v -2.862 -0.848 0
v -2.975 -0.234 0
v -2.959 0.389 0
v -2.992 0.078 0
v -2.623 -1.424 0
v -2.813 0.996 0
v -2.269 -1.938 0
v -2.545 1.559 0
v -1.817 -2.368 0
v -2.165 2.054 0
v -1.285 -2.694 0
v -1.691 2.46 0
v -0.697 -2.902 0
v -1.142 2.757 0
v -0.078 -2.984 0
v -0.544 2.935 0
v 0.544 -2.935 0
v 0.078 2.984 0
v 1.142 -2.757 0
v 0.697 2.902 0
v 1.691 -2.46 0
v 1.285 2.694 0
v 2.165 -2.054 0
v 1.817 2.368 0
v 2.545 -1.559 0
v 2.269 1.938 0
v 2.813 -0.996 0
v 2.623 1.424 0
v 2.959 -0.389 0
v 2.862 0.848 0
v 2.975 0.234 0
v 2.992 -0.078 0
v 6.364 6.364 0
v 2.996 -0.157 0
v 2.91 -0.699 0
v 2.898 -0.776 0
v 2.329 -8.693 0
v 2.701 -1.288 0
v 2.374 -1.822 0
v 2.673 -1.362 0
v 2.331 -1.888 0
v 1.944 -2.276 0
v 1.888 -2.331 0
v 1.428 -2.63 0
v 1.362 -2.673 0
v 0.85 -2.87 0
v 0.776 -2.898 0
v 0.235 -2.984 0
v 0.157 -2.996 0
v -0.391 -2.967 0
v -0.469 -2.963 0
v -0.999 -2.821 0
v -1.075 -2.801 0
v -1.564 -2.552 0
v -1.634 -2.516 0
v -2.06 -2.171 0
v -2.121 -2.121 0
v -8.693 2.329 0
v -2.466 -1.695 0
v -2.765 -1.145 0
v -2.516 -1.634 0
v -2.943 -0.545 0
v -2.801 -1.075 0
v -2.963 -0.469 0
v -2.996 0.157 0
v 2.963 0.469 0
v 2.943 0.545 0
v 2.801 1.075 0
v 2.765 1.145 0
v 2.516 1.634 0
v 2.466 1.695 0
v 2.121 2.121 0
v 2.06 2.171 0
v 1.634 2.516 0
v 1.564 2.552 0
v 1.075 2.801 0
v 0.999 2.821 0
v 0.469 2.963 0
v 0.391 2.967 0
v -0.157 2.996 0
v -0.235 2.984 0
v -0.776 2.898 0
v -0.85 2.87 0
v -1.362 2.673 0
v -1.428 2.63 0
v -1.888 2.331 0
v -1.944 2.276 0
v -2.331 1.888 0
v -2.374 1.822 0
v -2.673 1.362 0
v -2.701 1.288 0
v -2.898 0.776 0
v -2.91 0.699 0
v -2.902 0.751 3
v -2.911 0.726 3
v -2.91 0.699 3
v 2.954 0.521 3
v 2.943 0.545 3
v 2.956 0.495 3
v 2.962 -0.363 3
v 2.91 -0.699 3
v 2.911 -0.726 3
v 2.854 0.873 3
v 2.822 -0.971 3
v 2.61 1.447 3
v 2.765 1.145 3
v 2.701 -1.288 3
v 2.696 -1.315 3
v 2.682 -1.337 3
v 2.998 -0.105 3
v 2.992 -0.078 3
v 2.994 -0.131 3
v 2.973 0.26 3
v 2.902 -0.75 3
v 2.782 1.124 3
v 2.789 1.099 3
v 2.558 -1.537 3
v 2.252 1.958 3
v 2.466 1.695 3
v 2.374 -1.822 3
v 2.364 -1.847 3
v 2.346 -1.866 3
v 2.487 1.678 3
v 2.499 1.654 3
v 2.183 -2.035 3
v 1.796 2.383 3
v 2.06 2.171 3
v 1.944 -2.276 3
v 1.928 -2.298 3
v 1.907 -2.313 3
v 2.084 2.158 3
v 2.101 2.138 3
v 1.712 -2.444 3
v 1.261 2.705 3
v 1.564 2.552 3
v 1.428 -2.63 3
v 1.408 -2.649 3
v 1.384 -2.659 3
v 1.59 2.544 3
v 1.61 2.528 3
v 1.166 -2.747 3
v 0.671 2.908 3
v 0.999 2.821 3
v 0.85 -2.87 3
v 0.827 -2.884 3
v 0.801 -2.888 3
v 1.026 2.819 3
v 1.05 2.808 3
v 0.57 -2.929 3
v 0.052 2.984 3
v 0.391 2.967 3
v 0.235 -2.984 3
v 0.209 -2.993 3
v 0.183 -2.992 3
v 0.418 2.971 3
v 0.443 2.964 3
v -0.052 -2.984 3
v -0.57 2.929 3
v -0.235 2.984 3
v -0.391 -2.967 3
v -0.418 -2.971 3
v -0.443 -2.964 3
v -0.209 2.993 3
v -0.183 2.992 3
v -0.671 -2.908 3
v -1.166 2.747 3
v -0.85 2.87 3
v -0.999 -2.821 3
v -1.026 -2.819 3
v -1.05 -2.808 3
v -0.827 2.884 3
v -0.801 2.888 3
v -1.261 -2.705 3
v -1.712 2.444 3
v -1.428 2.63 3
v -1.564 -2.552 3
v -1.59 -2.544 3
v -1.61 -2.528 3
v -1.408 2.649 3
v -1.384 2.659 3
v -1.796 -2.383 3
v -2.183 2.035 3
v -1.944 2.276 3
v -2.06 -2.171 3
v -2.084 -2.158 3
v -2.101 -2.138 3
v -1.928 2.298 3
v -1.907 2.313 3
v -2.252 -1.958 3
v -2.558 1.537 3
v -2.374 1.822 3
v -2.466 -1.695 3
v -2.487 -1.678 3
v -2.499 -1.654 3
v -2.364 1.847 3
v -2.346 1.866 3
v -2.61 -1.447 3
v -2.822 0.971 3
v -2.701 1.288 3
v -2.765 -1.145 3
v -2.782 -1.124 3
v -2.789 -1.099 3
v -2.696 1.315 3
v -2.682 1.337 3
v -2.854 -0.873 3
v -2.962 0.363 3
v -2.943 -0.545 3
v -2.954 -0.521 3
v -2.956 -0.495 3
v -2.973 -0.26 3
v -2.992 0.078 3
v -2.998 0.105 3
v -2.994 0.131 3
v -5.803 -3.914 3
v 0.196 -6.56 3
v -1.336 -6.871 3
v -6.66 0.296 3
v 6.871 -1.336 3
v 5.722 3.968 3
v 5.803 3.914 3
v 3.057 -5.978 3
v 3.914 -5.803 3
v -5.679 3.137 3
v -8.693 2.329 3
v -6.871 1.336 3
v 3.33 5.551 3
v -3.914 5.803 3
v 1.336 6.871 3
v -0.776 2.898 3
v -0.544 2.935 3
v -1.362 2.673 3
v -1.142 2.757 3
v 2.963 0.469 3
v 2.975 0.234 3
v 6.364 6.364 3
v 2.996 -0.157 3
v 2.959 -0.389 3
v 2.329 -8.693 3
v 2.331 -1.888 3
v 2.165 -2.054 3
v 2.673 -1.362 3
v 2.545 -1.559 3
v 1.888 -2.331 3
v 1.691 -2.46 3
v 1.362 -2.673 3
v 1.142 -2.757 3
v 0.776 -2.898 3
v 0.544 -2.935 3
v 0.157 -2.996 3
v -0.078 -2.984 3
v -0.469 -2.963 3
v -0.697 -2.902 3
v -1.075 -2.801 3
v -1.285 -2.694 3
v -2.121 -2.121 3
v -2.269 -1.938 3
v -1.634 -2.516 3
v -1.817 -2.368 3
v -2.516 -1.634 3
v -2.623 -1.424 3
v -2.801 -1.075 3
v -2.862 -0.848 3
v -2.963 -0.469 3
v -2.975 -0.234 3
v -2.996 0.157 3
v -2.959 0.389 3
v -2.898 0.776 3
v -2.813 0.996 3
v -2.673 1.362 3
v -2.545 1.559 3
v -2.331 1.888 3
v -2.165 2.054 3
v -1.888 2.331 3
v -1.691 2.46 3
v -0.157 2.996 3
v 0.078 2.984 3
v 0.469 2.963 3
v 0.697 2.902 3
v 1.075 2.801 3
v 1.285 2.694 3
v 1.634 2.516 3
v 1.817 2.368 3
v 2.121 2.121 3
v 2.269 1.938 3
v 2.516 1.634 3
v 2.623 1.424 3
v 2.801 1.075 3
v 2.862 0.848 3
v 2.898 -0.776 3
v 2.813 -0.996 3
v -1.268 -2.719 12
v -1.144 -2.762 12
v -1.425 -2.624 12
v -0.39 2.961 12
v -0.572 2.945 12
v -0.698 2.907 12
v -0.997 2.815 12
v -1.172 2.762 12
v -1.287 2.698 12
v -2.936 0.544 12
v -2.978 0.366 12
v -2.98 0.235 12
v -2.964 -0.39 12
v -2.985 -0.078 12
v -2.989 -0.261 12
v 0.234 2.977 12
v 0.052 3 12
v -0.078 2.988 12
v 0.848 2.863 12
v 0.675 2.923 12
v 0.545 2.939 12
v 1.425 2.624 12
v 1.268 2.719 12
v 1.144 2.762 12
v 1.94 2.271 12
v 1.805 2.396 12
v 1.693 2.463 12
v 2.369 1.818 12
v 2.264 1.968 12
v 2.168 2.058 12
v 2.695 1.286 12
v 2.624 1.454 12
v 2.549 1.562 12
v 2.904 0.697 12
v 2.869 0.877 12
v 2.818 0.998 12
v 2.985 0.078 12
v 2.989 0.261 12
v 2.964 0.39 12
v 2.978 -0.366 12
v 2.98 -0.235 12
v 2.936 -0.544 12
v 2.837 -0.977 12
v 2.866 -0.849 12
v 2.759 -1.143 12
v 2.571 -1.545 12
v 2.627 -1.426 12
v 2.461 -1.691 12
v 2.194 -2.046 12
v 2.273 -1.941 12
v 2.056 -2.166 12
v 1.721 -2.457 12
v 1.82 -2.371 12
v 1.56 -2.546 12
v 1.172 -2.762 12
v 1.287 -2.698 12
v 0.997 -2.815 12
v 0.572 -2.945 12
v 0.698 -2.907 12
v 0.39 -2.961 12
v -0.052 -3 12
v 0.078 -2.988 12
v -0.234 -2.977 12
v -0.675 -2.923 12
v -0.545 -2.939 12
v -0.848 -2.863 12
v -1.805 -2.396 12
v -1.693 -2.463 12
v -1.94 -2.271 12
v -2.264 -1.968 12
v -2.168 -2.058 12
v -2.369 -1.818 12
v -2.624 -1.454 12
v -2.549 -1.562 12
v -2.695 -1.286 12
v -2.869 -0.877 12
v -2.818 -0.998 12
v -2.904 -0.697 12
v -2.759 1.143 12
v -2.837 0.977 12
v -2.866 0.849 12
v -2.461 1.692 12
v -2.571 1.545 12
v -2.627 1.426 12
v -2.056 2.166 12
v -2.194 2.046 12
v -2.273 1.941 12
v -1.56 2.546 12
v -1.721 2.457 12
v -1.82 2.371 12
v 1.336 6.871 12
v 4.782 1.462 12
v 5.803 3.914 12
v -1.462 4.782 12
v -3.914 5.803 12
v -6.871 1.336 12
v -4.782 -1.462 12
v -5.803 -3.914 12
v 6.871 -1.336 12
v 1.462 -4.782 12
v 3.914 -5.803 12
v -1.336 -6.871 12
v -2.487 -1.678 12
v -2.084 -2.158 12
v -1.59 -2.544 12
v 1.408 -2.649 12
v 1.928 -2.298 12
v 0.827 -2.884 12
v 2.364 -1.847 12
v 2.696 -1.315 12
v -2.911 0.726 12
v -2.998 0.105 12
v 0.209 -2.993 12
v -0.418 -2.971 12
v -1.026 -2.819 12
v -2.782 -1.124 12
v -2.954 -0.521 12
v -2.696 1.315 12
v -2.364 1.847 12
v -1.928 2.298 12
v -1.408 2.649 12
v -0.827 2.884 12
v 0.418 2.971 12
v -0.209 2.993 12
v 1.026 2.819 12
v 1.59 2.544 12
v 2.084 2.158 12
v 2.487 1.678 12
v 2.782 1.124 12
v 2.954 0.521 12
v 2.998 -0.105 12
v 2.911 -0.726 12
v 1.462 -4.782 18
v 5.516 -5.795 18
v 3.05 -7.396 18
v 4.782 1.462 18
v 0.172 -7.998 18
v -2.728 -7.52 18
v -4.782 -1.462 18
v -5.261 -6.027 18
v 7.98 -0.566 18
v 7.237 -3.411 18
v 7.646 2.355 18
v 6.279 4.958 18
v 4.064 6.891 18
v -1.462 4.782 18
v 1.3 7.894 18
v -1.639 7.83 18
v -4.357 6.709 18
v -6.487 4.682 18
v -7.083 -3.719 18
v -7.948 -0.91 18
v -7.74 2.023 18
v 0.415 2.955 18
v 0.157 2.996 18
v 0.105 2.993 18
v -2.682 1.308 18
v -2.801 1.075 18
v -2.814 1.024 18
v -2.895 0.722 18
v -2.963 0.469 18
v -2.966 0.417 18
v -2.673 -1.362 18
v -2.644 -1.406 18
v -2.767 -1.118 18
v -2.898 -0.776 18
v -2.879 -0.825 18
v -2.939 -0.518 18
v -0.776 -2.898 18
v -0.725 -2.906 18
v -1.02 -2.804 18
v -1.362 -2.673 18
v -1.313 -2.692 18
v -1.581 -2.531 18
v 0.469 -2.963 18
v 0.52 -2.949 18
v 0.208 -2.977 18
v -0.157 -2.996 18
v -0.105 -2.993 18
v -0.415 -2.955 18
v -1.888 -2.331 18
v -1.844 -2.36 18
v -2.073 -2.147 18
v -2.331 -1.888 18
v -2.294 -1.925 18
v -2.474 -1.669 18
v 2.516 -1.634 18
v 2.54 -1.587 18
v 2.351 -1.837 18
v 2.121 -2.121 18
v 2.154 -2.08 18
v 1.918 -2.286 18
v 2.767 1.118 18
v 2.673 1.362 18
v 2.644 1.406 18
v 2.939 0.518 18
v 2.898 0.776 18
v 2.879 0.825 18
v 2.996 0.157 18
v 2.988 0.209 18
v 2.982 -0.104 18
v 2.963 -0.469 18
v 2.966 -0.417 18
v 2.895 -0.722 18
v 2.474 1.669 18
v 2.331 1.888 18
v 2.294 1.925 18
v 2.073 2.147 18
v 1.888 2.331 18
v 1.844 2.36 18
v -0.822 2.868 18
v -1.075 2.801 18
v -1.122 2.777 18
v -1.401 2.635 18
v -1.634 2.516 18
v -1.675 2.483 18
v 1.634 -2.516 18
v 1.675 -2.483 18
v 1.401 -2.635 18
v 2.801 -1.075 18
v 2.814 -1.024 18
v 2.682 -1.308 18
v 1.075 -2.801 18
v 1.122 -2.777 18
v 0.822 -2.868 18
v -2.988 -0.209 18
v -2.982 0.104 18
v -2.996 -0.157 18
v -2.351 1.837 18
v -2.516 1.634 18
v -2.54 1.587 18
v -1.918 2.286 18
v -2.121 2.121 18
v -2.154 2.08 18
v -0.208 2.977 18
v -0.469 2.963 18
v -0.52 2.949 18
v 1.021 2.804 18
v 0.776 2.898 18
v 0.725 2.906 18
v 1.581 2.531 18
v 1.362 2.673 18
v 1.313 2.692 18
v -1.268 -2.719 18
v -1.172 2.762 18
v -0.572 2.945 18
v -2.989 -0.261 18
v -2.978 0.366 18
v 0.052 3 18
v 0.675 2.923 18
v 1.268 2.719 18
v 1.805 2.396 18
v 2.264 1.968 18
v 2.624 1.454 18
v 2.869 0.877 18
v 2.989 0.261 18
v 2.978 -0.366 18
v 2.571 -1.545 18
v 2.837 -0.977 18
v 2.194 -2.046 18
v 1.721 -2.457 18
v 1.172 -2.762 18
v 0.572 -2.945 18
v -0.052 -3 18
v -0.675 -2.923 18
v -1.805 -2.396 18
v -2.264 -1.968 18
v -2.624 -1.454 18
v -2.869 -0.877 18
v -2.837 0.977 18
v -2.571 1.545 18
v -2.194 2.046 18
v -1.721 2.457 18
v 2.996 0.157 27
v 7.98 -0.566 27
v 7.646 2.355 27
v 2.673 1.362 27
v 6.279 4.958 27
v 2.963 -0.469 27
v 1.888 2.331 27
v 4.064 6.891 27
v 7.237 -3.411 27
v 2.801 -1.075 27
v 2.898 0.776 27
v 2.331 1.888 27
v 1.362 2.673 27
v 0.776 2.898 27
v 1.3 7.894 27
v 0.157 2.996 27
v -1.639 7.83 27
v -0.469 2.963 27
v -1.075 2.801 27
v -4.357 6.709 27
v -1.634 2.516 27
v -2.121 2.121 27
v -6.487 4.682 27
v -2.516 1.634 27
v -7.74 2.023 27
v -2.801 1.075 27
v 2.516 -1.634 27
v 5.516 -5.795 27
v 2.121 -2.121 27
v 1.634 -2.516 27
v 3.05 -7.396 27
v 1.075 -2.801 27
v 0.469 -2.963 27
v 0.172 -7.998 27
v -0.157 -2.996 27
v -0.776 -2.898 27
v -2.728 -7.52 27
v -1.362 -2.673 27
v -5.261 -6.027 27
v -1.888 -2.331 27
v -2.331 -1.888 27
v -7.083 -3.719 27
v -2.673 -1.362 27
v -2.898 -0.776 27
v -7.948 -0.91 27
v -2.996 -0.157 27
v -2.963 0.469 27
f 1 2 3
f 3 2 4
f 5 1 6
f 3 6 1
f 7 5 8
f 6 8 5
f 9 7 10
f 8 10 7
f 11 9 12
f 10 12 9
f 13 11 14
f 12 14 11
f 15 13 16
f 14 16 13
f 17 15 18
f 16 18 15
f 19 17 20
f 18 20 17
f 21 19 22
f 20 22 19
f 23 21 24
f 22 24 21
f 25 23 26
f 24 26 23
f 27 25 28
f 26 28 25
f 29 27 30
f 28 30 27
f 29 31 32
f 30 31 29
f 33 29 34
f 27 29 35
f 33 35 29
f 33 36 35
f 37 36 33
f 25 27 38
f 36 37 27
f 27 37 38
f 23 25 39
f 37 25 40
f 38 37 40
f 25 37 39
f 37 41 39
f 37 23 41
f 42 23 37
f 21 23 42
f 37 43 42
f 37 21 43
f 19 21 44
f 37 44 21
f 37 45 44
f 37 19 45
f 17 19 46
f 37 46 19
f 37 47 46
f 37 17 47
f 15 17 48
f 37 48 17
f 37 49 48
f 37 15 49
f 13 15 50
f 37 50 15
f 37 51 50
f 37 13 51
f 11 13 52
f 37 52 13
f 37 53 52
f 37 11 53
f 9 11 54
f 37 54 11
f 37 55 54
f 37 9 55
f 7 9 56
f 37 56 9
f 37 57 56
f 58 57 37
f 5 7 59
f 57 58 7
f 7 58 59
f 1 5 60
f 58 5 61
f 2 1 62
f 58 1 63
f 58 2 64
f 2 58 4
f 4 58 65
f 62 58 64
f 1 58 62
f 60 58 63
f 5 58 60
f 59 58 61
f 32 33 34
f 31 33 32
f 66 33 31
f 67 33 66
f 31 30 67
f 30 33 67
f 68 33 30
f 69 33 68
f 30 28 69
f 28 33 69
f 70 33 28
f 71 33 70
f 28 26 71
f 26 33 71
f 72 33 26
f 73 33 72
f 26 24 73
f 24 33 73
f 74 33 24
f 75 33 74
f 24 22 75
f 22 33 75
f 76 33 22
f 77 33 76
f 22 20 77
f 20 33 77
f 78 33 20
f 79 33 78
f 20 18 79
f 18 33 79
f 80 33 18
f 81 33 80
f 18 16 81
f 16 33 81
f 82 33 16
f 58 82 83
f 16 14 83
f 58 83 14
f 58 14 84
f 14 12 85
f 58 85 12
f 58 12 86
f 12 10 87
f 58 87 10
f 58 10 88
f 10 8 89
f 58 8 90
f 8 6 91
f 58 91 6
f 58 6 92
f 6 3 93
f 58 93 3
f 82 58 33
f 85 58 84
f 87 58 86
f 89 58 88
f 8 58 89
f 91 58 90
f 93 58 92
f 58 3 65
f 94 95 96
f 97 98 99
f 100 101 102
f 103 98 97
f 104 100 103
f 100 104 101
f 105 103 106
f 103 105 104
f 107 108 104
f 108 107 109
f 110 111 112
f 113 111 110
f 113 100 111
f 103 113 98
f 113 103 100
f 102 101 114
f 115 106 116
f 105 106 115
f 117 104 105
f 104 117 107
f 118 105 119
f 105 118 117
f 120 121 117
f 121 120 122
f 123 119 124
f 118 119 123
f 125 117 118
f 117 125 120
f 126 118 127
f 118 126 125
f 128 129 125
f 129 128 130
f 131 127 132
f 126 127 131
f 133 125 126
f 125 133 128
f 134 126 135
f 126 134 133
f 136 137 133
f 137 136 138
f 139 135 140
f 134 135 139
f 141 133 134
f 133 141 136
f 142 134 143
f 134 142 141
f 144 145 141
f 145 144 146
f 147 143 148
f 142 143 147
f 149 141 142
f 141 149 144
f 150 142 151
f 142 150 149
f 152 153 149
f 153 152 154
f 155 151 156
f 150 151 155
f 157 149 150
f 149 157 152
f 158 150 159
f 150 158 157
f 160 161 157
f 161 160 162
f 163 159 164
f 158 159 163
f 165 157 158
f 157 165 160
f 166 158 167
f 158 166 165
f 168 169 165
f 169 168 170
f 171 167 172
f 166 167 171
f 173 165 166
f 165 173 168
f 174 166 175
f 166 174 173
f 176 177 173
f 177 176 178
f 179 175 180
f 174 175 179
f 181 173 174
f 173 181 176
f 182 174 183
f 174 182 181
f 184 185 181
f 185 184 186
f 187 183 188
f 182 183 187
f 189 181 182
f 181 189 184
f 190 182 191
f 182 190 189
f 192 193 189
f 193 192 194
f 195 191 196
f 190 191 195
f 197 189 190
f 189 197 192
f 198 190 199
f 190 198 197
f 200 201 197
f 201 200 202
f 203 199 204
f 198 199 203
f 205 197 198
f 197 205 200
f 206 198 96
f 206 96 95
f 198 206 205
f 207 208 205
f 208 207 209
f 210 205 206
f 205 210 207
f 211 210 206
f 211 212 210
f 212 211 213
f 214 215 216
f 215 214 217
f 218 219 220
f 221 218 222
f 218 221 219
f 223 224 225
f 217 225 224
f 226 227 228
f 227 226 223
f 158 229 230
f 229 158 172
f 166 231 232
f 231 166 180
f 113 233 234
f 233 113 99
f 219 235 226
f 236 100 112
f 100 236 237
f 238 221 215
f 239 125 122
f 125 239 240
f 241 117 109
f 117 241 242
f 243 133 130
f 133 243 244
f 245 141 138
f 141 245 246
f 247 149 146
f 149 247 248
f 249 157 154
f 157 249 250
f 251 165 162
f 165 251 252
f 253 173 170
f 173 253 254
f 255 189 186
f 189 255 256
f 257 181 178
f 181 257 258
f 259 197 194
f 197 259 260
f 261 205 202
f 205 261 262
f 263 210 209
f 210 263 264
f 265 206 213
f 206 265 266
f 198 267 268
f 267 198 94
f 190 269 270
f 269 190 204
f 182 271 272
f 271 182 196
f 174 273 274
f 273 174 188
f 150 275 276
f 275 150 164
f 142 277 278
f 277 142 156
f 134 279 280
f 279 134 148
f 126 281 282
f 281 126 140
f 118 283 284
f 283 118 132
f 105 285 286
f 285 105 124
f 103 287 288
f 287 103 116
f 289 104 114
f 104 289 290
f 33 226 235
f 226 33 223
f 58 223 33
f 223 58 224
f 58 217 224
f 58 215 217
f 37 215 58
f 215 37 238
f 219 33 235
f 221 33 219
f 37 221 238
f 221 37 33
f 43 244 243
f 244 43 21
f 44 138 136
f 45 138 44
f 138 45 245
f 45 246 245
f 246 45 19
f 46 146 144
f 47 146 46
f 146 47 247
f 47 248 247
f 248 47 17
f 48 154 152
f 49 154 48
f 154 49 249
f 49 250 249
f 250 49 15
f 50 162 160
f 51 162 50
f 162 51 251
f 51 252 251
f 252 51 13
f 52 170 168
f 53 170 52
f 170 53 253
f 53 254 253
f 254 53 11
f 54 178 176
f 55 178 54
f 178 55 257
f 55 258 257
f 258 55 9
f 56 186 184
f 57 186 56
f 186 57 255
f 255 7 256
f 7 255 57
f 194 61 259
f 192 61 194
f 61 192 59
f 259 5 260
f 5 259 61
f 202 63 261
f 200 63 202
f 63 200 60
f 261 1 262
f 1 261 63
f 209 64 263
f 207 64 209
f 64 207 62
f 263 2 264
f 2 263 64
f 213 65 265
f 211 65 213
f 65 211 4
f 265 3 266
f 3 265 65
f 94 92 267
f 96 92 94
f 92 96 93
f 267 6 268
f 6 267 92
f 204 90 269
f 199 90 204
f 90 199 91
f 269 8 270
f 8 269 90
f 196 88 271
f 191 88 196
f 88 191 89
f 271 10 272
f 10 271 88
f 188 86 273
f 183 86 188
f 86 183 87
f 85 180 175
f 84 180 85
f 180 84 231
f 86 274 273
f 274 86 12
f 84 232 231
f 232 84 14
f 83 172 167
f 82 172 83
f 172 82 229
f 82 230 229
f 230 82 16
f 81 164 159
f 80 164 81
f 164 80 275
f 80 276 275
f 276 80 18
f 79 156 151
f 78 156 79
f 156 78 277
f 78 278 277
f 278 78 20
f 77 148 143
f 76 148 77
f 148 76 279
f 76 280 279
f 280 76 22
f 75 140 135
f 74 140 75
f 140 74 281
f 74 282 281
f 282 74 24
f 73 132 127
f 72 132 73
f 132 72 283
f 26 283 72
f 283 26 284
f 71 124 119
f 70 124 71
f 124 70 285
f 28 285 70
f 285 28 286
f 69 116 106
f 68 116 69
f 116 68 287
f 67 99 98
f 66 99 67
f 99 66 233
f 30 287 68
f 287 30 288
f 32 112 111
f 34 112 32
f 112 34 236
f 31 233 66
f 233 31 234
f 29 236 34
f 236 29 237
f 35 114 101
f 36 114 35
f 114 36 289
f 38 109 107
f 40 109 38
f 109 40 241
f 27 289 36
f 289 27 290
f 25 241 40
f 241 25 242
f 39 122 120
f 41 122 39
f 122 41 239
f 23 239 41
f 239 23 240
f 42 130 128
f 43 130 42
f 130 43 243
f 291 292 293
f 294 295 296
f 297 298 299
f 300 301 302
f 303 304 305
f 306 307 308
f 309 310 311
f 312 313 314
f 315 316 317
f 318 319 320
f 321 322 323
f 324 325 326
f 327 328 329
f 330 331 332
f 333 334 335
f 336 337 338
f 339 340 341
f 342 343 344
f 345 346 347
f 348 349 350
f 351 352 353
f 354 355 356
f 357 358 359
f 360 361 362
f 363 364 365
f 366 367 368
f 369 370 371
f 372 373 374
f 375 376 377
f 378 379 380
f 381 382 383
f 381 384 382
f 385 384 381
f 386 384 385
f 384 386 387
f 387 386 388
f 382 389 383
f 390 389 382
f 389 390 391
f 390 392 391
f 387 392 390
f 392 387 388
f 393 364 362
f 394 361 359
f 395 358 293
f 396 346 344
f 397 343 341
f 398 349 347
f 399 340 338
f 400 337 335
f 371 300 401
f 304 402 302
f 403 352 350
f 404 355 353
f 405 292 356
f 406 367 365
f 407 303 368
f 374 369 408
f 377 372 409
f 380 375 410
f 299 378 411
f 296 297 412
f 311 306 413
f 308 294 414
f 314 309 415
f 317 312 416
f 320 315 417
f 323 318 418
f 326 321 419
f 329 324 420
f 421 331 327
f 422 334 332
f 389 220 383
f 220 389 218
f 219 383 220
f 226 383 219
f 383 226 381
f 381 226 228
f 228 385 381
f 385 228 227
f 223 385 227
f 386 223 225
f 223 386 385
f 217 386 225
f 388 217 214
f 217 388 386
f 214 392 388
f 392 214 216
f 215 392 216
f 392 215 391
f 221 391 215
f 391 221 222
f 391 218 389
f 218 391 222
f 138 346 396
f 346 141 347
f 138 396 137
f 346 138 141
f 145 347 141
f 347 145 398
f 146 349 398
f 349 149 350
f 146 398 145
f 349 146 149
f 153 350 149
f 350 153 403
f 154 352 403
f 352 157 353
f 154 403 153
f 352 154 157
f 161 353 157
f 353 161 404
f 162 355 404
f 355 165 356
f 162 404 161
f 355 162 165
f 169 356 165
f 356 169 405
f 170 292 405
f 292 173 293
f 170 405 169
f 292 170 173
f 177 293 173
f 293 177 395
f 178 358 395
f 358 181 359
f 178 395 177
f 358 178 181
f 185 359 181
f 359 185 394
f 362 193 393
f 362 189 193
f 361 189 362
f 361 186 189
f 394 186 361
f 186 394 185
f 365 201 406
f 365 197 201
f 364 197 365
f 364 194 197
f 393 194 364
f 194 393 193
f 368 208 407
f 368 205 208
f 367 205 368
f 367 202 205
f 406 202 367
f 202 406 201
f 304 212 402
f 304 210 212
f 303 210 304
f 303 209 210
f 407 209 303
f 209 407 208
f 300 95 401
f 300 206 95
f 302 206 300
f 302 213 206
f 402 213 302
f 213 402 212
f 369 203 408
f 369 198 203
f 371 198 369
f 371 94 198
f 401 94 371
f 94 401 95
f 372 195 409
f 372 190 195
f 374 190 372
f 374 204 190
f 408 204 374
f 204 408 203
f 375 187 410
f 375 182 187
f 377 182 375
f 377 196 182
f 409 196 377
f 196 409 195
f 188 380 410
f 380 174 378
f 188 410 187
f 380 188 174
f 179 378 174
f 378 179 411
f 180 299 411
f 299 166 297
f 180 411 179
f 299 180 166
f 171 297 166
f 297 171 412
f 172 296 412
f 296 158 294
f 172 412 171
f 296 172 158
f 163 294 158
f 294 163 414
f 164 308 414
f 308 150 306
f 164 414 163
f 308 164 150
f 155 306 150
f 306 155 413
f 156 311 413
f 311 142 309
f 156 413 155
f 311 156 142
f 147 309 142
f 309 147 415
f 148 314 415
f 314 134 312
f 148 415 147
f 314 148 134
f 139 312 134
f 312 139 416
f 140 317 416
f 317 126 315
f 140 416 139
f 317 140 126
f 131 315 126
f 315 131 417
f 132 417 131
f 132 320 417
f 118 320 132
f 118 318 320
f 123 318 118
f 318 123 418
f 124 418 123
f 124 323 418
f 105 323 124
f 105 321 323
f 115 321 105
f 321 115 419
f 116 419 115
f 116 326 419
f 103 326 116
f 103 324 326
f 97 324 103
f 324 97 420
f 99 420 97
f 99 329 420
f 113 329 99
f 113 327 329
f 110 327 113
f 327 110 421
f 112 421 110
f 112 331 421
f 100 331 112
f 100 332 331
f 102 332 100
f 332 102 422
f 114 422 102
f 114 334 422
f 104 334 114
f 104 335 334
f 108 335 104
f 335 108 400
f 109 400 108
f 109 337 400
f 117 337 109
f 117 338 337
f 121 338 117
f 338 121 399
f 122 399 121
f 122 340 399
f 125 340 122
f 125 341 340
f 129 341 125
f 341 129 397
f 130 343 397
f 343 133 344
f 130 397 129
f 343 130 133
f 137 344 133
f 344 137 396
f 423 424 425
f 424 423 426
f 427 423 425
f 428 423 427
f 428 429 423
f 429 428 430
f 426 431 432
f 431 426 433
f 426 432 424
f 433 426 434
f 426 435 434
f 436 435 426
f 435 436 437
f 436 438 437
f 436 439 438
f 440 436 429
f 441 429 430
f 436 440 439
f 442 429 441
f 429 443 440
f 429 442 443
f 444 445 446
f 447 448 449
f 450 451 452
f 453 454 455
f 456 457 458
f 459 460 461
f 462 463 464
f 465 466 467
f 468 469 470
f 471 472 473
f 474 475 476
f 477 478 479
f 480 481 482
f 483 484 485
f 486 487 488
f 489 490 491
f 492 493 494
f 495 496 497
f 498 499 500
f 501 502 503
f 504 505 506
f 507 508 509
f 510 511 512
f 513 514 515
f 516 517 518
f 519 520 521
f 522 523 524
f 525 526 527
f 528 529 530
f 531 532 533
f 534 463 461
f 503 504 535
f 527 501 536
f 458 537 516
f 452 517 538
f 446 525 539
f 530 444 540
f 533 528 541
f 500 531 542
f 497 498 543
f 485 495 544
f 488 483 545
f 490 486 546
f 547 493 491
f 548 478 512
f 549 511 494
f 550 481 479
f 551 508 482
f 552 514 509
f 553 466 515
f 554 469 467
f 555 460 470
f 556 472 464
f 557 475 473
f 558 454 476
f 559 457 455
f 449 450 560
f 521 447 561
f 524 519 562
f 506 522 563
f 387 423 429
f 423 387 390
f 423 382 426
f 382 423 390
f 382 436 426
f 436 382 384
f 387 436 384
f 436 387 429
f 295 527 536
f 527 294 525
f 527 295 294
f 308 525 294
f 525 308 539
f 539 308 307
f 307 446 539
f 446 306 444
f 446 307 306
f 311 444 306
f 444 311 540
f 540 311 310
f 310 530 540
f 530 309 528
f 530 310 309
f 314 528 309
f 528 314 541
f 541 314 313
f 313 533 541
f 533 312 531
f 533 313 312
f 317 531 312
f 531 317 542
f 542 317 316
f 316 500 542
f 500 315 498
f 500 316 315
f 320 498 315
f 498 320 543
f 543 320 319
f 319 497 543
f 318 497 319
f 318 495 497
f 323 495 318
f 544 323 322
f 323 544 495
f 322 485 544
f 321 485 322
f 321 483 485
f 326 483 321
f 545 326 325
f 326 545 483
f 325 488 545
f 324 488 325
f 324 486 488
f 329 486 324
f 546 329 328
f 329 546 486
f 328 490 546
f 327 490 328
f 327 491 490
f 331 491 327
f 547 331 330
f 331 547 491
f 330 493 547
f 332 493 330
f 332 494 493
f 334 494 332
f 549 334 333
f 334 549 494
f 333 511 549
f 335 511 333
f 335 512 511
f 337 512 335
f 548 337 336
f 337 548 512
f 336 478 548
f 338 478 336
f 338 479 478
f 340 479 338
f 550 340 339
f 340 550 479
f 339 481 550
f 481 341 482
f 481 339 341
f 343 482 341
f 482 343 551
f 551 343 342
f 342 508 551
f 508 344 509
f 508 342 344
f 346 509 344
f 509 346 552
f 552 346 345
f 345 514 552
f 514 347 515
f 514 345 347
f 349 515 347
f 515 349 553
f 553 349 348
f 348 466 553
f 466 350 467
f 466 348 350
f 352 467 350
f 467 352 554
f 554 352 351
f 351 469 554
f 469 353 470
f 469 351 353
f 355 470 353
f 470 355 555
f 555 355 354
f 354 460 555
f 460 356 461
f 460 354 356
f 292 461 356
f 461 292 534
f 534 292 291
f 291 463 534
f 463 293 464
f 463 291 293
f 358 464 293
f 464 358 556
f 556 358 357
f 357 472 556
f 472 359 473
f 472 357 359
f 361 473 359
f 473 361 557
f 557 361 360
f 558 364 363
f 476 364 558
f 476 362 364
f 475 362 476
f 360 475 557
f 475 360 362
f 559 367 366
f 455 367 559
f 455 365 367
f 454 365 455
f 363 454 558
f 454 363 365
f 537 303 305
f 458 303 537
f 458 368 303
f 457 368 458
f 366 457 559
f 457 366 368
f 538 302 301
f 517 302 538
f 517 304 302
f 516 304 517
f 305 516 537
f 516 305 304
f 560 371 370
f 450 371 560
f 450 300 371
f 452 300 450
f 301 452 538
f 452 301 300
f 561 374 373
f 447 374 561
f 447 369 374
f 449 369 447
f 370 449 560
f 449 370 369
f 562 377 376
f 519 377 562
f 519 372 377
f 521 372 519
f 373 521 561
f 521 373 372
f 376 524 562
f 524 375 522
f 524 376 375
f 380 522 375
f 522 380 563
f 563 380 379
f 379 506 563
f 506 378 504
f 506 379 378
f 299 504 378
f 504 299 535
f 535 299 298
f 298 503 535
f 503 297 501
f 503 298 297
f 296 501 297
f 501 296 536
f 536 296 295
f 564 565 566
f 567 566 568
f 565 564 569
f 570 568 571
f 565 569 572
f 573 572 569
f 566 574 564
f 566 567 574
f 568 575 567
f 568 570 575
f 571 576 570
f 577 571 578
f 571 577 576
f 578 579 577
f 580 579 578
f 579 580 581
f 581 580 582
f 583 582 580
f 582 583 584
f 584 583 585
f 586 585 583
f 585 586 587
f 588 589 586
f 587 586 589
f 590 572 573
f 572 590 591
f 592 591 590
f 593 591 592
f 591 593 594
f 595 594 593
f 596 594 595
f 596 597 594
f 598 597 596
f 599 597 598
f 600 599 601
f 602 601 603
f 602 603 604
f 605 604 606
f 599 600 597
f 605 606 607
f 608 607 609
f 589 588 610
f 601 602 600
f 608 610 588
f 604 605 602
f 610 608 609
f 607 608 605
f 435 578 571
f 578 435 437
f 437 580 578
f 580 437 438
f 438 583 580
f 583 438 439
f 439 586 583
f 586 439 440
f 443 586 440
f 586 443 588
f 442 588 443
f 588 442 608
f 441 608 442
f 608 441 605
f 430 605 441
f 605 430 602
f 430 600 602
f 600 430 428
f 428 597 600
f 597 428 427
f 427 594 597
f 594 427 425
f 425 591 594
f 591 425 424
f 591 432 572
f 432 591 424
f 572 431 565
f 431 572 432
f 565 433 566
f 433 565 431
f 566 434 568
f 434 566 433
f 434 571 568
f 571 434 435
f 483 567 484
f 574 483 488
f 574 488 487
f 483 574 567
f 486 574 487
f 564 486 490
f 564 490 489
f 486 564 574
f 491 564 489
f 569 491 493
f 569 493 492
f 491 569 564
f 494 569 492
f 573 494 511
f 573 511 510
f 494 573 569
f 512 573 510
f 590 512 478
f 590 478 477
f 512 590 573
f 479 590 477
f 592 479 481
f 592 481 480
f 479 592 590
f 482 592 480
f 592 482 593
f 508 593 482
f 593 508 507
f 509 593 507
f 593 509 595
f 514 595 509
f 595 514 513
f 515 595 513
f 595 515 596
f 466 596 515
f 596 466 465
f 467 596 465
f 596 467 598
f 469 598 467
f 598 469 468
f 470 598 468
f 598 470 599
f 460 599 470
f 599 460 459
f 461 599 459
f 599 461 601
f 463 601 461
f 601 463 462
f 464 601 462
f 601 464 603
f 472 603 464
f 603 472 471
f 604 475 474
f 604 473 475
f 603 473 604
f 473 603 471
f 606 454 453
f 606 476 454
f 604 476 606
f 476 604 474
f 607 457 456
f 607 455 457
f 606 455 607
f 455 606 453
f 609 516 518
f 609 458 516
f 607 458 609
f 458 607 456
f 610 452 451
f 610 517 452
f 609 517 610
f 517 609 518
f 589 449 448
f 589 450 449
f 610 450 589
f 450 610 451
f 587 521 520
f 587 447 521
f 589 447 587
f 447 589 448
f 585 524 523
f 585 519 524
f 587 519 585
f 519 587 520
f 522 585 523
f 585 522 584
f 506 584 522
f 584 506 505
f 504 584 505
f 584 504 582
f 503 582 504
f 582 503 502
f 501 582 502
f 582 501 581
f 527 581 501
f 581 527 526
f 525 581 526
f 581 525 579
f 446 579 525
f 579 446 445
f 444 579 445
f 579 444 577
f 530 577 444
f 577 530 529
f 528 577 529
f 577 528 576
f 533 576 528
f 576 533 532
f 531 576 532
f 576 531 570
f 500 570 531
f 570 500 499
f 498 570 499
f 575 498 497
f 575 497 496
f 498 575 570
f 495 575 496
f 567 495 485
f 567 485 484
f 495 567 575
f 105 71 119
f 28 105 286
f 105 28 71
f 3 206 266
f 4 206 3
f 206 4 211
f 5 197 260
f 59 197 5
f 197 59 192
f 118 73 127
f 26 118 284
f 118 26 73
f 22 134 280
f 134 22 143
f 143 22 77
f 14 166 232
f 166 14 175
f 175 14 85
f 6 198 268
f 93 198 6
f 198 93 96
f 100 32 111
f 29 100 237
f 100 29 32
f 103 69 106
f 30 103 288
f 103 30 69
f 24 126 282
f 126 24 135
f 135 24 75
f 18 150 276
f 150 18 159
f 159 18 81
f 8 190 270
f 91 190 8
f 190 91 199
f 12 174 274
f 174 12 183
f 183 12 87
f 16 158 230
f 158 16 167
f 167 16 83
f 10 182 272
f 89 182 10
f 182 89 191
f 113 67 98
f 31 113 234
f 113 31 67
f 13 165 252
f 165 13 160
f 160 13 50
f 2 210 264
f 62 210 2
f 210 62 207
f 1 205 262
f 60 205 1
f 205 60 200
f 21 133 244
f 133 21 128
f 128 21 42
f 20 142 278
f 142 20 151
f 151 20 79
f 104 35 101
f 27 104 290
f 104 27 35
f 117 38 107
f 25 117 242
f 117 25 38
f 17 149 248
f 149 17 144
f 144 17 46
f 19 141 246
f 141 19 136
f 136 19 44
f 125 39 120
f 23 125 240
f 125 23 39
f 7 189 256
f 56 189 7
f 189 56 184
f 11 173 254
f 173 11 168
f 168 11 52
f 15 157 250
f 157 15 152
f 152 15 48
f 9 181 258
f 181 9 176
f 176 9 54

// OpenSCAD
// [inibitore, orientamento,  raggio, facce, altezza]
genome = [1,45,9,3,3,0,123,5,5,6,1,34,7,8,9,1,197,5,4,6,0,281,7,3,4,0,12,4,7,8,1,123,8,17,9];
gene_len=5;
function altezz(index) = ( index == 0 ? 0 : genome[index-gene_len]*genome[index-1] + altezz(index-gene_len) ); 

raggi = [ for (i = [2 : gene_len : len(genome)]) genome[i] ];
min_r = min(raggi);


for (g=[0:gene_len:len(genome)-gene_len]){
    inibitore = genome[g];
    orientamento = genome[g+1];
    raggio = genome[g+2];
    facce = genome[g+3];
    altezza = genome[g+4];
    if(inibitore==1){ 
        translate([0,0,altezz(g)])
            linear_extrude(height = altezza)
                rotate([0,0,orientamento])
                    difference(){
                        circle(raggio,$fn=facce);
                        circle(min_r-1,$fn=30);
                    }
    }

}

//tappo

 cylinder(h = 3, r = min_r-1, $fn=30);
